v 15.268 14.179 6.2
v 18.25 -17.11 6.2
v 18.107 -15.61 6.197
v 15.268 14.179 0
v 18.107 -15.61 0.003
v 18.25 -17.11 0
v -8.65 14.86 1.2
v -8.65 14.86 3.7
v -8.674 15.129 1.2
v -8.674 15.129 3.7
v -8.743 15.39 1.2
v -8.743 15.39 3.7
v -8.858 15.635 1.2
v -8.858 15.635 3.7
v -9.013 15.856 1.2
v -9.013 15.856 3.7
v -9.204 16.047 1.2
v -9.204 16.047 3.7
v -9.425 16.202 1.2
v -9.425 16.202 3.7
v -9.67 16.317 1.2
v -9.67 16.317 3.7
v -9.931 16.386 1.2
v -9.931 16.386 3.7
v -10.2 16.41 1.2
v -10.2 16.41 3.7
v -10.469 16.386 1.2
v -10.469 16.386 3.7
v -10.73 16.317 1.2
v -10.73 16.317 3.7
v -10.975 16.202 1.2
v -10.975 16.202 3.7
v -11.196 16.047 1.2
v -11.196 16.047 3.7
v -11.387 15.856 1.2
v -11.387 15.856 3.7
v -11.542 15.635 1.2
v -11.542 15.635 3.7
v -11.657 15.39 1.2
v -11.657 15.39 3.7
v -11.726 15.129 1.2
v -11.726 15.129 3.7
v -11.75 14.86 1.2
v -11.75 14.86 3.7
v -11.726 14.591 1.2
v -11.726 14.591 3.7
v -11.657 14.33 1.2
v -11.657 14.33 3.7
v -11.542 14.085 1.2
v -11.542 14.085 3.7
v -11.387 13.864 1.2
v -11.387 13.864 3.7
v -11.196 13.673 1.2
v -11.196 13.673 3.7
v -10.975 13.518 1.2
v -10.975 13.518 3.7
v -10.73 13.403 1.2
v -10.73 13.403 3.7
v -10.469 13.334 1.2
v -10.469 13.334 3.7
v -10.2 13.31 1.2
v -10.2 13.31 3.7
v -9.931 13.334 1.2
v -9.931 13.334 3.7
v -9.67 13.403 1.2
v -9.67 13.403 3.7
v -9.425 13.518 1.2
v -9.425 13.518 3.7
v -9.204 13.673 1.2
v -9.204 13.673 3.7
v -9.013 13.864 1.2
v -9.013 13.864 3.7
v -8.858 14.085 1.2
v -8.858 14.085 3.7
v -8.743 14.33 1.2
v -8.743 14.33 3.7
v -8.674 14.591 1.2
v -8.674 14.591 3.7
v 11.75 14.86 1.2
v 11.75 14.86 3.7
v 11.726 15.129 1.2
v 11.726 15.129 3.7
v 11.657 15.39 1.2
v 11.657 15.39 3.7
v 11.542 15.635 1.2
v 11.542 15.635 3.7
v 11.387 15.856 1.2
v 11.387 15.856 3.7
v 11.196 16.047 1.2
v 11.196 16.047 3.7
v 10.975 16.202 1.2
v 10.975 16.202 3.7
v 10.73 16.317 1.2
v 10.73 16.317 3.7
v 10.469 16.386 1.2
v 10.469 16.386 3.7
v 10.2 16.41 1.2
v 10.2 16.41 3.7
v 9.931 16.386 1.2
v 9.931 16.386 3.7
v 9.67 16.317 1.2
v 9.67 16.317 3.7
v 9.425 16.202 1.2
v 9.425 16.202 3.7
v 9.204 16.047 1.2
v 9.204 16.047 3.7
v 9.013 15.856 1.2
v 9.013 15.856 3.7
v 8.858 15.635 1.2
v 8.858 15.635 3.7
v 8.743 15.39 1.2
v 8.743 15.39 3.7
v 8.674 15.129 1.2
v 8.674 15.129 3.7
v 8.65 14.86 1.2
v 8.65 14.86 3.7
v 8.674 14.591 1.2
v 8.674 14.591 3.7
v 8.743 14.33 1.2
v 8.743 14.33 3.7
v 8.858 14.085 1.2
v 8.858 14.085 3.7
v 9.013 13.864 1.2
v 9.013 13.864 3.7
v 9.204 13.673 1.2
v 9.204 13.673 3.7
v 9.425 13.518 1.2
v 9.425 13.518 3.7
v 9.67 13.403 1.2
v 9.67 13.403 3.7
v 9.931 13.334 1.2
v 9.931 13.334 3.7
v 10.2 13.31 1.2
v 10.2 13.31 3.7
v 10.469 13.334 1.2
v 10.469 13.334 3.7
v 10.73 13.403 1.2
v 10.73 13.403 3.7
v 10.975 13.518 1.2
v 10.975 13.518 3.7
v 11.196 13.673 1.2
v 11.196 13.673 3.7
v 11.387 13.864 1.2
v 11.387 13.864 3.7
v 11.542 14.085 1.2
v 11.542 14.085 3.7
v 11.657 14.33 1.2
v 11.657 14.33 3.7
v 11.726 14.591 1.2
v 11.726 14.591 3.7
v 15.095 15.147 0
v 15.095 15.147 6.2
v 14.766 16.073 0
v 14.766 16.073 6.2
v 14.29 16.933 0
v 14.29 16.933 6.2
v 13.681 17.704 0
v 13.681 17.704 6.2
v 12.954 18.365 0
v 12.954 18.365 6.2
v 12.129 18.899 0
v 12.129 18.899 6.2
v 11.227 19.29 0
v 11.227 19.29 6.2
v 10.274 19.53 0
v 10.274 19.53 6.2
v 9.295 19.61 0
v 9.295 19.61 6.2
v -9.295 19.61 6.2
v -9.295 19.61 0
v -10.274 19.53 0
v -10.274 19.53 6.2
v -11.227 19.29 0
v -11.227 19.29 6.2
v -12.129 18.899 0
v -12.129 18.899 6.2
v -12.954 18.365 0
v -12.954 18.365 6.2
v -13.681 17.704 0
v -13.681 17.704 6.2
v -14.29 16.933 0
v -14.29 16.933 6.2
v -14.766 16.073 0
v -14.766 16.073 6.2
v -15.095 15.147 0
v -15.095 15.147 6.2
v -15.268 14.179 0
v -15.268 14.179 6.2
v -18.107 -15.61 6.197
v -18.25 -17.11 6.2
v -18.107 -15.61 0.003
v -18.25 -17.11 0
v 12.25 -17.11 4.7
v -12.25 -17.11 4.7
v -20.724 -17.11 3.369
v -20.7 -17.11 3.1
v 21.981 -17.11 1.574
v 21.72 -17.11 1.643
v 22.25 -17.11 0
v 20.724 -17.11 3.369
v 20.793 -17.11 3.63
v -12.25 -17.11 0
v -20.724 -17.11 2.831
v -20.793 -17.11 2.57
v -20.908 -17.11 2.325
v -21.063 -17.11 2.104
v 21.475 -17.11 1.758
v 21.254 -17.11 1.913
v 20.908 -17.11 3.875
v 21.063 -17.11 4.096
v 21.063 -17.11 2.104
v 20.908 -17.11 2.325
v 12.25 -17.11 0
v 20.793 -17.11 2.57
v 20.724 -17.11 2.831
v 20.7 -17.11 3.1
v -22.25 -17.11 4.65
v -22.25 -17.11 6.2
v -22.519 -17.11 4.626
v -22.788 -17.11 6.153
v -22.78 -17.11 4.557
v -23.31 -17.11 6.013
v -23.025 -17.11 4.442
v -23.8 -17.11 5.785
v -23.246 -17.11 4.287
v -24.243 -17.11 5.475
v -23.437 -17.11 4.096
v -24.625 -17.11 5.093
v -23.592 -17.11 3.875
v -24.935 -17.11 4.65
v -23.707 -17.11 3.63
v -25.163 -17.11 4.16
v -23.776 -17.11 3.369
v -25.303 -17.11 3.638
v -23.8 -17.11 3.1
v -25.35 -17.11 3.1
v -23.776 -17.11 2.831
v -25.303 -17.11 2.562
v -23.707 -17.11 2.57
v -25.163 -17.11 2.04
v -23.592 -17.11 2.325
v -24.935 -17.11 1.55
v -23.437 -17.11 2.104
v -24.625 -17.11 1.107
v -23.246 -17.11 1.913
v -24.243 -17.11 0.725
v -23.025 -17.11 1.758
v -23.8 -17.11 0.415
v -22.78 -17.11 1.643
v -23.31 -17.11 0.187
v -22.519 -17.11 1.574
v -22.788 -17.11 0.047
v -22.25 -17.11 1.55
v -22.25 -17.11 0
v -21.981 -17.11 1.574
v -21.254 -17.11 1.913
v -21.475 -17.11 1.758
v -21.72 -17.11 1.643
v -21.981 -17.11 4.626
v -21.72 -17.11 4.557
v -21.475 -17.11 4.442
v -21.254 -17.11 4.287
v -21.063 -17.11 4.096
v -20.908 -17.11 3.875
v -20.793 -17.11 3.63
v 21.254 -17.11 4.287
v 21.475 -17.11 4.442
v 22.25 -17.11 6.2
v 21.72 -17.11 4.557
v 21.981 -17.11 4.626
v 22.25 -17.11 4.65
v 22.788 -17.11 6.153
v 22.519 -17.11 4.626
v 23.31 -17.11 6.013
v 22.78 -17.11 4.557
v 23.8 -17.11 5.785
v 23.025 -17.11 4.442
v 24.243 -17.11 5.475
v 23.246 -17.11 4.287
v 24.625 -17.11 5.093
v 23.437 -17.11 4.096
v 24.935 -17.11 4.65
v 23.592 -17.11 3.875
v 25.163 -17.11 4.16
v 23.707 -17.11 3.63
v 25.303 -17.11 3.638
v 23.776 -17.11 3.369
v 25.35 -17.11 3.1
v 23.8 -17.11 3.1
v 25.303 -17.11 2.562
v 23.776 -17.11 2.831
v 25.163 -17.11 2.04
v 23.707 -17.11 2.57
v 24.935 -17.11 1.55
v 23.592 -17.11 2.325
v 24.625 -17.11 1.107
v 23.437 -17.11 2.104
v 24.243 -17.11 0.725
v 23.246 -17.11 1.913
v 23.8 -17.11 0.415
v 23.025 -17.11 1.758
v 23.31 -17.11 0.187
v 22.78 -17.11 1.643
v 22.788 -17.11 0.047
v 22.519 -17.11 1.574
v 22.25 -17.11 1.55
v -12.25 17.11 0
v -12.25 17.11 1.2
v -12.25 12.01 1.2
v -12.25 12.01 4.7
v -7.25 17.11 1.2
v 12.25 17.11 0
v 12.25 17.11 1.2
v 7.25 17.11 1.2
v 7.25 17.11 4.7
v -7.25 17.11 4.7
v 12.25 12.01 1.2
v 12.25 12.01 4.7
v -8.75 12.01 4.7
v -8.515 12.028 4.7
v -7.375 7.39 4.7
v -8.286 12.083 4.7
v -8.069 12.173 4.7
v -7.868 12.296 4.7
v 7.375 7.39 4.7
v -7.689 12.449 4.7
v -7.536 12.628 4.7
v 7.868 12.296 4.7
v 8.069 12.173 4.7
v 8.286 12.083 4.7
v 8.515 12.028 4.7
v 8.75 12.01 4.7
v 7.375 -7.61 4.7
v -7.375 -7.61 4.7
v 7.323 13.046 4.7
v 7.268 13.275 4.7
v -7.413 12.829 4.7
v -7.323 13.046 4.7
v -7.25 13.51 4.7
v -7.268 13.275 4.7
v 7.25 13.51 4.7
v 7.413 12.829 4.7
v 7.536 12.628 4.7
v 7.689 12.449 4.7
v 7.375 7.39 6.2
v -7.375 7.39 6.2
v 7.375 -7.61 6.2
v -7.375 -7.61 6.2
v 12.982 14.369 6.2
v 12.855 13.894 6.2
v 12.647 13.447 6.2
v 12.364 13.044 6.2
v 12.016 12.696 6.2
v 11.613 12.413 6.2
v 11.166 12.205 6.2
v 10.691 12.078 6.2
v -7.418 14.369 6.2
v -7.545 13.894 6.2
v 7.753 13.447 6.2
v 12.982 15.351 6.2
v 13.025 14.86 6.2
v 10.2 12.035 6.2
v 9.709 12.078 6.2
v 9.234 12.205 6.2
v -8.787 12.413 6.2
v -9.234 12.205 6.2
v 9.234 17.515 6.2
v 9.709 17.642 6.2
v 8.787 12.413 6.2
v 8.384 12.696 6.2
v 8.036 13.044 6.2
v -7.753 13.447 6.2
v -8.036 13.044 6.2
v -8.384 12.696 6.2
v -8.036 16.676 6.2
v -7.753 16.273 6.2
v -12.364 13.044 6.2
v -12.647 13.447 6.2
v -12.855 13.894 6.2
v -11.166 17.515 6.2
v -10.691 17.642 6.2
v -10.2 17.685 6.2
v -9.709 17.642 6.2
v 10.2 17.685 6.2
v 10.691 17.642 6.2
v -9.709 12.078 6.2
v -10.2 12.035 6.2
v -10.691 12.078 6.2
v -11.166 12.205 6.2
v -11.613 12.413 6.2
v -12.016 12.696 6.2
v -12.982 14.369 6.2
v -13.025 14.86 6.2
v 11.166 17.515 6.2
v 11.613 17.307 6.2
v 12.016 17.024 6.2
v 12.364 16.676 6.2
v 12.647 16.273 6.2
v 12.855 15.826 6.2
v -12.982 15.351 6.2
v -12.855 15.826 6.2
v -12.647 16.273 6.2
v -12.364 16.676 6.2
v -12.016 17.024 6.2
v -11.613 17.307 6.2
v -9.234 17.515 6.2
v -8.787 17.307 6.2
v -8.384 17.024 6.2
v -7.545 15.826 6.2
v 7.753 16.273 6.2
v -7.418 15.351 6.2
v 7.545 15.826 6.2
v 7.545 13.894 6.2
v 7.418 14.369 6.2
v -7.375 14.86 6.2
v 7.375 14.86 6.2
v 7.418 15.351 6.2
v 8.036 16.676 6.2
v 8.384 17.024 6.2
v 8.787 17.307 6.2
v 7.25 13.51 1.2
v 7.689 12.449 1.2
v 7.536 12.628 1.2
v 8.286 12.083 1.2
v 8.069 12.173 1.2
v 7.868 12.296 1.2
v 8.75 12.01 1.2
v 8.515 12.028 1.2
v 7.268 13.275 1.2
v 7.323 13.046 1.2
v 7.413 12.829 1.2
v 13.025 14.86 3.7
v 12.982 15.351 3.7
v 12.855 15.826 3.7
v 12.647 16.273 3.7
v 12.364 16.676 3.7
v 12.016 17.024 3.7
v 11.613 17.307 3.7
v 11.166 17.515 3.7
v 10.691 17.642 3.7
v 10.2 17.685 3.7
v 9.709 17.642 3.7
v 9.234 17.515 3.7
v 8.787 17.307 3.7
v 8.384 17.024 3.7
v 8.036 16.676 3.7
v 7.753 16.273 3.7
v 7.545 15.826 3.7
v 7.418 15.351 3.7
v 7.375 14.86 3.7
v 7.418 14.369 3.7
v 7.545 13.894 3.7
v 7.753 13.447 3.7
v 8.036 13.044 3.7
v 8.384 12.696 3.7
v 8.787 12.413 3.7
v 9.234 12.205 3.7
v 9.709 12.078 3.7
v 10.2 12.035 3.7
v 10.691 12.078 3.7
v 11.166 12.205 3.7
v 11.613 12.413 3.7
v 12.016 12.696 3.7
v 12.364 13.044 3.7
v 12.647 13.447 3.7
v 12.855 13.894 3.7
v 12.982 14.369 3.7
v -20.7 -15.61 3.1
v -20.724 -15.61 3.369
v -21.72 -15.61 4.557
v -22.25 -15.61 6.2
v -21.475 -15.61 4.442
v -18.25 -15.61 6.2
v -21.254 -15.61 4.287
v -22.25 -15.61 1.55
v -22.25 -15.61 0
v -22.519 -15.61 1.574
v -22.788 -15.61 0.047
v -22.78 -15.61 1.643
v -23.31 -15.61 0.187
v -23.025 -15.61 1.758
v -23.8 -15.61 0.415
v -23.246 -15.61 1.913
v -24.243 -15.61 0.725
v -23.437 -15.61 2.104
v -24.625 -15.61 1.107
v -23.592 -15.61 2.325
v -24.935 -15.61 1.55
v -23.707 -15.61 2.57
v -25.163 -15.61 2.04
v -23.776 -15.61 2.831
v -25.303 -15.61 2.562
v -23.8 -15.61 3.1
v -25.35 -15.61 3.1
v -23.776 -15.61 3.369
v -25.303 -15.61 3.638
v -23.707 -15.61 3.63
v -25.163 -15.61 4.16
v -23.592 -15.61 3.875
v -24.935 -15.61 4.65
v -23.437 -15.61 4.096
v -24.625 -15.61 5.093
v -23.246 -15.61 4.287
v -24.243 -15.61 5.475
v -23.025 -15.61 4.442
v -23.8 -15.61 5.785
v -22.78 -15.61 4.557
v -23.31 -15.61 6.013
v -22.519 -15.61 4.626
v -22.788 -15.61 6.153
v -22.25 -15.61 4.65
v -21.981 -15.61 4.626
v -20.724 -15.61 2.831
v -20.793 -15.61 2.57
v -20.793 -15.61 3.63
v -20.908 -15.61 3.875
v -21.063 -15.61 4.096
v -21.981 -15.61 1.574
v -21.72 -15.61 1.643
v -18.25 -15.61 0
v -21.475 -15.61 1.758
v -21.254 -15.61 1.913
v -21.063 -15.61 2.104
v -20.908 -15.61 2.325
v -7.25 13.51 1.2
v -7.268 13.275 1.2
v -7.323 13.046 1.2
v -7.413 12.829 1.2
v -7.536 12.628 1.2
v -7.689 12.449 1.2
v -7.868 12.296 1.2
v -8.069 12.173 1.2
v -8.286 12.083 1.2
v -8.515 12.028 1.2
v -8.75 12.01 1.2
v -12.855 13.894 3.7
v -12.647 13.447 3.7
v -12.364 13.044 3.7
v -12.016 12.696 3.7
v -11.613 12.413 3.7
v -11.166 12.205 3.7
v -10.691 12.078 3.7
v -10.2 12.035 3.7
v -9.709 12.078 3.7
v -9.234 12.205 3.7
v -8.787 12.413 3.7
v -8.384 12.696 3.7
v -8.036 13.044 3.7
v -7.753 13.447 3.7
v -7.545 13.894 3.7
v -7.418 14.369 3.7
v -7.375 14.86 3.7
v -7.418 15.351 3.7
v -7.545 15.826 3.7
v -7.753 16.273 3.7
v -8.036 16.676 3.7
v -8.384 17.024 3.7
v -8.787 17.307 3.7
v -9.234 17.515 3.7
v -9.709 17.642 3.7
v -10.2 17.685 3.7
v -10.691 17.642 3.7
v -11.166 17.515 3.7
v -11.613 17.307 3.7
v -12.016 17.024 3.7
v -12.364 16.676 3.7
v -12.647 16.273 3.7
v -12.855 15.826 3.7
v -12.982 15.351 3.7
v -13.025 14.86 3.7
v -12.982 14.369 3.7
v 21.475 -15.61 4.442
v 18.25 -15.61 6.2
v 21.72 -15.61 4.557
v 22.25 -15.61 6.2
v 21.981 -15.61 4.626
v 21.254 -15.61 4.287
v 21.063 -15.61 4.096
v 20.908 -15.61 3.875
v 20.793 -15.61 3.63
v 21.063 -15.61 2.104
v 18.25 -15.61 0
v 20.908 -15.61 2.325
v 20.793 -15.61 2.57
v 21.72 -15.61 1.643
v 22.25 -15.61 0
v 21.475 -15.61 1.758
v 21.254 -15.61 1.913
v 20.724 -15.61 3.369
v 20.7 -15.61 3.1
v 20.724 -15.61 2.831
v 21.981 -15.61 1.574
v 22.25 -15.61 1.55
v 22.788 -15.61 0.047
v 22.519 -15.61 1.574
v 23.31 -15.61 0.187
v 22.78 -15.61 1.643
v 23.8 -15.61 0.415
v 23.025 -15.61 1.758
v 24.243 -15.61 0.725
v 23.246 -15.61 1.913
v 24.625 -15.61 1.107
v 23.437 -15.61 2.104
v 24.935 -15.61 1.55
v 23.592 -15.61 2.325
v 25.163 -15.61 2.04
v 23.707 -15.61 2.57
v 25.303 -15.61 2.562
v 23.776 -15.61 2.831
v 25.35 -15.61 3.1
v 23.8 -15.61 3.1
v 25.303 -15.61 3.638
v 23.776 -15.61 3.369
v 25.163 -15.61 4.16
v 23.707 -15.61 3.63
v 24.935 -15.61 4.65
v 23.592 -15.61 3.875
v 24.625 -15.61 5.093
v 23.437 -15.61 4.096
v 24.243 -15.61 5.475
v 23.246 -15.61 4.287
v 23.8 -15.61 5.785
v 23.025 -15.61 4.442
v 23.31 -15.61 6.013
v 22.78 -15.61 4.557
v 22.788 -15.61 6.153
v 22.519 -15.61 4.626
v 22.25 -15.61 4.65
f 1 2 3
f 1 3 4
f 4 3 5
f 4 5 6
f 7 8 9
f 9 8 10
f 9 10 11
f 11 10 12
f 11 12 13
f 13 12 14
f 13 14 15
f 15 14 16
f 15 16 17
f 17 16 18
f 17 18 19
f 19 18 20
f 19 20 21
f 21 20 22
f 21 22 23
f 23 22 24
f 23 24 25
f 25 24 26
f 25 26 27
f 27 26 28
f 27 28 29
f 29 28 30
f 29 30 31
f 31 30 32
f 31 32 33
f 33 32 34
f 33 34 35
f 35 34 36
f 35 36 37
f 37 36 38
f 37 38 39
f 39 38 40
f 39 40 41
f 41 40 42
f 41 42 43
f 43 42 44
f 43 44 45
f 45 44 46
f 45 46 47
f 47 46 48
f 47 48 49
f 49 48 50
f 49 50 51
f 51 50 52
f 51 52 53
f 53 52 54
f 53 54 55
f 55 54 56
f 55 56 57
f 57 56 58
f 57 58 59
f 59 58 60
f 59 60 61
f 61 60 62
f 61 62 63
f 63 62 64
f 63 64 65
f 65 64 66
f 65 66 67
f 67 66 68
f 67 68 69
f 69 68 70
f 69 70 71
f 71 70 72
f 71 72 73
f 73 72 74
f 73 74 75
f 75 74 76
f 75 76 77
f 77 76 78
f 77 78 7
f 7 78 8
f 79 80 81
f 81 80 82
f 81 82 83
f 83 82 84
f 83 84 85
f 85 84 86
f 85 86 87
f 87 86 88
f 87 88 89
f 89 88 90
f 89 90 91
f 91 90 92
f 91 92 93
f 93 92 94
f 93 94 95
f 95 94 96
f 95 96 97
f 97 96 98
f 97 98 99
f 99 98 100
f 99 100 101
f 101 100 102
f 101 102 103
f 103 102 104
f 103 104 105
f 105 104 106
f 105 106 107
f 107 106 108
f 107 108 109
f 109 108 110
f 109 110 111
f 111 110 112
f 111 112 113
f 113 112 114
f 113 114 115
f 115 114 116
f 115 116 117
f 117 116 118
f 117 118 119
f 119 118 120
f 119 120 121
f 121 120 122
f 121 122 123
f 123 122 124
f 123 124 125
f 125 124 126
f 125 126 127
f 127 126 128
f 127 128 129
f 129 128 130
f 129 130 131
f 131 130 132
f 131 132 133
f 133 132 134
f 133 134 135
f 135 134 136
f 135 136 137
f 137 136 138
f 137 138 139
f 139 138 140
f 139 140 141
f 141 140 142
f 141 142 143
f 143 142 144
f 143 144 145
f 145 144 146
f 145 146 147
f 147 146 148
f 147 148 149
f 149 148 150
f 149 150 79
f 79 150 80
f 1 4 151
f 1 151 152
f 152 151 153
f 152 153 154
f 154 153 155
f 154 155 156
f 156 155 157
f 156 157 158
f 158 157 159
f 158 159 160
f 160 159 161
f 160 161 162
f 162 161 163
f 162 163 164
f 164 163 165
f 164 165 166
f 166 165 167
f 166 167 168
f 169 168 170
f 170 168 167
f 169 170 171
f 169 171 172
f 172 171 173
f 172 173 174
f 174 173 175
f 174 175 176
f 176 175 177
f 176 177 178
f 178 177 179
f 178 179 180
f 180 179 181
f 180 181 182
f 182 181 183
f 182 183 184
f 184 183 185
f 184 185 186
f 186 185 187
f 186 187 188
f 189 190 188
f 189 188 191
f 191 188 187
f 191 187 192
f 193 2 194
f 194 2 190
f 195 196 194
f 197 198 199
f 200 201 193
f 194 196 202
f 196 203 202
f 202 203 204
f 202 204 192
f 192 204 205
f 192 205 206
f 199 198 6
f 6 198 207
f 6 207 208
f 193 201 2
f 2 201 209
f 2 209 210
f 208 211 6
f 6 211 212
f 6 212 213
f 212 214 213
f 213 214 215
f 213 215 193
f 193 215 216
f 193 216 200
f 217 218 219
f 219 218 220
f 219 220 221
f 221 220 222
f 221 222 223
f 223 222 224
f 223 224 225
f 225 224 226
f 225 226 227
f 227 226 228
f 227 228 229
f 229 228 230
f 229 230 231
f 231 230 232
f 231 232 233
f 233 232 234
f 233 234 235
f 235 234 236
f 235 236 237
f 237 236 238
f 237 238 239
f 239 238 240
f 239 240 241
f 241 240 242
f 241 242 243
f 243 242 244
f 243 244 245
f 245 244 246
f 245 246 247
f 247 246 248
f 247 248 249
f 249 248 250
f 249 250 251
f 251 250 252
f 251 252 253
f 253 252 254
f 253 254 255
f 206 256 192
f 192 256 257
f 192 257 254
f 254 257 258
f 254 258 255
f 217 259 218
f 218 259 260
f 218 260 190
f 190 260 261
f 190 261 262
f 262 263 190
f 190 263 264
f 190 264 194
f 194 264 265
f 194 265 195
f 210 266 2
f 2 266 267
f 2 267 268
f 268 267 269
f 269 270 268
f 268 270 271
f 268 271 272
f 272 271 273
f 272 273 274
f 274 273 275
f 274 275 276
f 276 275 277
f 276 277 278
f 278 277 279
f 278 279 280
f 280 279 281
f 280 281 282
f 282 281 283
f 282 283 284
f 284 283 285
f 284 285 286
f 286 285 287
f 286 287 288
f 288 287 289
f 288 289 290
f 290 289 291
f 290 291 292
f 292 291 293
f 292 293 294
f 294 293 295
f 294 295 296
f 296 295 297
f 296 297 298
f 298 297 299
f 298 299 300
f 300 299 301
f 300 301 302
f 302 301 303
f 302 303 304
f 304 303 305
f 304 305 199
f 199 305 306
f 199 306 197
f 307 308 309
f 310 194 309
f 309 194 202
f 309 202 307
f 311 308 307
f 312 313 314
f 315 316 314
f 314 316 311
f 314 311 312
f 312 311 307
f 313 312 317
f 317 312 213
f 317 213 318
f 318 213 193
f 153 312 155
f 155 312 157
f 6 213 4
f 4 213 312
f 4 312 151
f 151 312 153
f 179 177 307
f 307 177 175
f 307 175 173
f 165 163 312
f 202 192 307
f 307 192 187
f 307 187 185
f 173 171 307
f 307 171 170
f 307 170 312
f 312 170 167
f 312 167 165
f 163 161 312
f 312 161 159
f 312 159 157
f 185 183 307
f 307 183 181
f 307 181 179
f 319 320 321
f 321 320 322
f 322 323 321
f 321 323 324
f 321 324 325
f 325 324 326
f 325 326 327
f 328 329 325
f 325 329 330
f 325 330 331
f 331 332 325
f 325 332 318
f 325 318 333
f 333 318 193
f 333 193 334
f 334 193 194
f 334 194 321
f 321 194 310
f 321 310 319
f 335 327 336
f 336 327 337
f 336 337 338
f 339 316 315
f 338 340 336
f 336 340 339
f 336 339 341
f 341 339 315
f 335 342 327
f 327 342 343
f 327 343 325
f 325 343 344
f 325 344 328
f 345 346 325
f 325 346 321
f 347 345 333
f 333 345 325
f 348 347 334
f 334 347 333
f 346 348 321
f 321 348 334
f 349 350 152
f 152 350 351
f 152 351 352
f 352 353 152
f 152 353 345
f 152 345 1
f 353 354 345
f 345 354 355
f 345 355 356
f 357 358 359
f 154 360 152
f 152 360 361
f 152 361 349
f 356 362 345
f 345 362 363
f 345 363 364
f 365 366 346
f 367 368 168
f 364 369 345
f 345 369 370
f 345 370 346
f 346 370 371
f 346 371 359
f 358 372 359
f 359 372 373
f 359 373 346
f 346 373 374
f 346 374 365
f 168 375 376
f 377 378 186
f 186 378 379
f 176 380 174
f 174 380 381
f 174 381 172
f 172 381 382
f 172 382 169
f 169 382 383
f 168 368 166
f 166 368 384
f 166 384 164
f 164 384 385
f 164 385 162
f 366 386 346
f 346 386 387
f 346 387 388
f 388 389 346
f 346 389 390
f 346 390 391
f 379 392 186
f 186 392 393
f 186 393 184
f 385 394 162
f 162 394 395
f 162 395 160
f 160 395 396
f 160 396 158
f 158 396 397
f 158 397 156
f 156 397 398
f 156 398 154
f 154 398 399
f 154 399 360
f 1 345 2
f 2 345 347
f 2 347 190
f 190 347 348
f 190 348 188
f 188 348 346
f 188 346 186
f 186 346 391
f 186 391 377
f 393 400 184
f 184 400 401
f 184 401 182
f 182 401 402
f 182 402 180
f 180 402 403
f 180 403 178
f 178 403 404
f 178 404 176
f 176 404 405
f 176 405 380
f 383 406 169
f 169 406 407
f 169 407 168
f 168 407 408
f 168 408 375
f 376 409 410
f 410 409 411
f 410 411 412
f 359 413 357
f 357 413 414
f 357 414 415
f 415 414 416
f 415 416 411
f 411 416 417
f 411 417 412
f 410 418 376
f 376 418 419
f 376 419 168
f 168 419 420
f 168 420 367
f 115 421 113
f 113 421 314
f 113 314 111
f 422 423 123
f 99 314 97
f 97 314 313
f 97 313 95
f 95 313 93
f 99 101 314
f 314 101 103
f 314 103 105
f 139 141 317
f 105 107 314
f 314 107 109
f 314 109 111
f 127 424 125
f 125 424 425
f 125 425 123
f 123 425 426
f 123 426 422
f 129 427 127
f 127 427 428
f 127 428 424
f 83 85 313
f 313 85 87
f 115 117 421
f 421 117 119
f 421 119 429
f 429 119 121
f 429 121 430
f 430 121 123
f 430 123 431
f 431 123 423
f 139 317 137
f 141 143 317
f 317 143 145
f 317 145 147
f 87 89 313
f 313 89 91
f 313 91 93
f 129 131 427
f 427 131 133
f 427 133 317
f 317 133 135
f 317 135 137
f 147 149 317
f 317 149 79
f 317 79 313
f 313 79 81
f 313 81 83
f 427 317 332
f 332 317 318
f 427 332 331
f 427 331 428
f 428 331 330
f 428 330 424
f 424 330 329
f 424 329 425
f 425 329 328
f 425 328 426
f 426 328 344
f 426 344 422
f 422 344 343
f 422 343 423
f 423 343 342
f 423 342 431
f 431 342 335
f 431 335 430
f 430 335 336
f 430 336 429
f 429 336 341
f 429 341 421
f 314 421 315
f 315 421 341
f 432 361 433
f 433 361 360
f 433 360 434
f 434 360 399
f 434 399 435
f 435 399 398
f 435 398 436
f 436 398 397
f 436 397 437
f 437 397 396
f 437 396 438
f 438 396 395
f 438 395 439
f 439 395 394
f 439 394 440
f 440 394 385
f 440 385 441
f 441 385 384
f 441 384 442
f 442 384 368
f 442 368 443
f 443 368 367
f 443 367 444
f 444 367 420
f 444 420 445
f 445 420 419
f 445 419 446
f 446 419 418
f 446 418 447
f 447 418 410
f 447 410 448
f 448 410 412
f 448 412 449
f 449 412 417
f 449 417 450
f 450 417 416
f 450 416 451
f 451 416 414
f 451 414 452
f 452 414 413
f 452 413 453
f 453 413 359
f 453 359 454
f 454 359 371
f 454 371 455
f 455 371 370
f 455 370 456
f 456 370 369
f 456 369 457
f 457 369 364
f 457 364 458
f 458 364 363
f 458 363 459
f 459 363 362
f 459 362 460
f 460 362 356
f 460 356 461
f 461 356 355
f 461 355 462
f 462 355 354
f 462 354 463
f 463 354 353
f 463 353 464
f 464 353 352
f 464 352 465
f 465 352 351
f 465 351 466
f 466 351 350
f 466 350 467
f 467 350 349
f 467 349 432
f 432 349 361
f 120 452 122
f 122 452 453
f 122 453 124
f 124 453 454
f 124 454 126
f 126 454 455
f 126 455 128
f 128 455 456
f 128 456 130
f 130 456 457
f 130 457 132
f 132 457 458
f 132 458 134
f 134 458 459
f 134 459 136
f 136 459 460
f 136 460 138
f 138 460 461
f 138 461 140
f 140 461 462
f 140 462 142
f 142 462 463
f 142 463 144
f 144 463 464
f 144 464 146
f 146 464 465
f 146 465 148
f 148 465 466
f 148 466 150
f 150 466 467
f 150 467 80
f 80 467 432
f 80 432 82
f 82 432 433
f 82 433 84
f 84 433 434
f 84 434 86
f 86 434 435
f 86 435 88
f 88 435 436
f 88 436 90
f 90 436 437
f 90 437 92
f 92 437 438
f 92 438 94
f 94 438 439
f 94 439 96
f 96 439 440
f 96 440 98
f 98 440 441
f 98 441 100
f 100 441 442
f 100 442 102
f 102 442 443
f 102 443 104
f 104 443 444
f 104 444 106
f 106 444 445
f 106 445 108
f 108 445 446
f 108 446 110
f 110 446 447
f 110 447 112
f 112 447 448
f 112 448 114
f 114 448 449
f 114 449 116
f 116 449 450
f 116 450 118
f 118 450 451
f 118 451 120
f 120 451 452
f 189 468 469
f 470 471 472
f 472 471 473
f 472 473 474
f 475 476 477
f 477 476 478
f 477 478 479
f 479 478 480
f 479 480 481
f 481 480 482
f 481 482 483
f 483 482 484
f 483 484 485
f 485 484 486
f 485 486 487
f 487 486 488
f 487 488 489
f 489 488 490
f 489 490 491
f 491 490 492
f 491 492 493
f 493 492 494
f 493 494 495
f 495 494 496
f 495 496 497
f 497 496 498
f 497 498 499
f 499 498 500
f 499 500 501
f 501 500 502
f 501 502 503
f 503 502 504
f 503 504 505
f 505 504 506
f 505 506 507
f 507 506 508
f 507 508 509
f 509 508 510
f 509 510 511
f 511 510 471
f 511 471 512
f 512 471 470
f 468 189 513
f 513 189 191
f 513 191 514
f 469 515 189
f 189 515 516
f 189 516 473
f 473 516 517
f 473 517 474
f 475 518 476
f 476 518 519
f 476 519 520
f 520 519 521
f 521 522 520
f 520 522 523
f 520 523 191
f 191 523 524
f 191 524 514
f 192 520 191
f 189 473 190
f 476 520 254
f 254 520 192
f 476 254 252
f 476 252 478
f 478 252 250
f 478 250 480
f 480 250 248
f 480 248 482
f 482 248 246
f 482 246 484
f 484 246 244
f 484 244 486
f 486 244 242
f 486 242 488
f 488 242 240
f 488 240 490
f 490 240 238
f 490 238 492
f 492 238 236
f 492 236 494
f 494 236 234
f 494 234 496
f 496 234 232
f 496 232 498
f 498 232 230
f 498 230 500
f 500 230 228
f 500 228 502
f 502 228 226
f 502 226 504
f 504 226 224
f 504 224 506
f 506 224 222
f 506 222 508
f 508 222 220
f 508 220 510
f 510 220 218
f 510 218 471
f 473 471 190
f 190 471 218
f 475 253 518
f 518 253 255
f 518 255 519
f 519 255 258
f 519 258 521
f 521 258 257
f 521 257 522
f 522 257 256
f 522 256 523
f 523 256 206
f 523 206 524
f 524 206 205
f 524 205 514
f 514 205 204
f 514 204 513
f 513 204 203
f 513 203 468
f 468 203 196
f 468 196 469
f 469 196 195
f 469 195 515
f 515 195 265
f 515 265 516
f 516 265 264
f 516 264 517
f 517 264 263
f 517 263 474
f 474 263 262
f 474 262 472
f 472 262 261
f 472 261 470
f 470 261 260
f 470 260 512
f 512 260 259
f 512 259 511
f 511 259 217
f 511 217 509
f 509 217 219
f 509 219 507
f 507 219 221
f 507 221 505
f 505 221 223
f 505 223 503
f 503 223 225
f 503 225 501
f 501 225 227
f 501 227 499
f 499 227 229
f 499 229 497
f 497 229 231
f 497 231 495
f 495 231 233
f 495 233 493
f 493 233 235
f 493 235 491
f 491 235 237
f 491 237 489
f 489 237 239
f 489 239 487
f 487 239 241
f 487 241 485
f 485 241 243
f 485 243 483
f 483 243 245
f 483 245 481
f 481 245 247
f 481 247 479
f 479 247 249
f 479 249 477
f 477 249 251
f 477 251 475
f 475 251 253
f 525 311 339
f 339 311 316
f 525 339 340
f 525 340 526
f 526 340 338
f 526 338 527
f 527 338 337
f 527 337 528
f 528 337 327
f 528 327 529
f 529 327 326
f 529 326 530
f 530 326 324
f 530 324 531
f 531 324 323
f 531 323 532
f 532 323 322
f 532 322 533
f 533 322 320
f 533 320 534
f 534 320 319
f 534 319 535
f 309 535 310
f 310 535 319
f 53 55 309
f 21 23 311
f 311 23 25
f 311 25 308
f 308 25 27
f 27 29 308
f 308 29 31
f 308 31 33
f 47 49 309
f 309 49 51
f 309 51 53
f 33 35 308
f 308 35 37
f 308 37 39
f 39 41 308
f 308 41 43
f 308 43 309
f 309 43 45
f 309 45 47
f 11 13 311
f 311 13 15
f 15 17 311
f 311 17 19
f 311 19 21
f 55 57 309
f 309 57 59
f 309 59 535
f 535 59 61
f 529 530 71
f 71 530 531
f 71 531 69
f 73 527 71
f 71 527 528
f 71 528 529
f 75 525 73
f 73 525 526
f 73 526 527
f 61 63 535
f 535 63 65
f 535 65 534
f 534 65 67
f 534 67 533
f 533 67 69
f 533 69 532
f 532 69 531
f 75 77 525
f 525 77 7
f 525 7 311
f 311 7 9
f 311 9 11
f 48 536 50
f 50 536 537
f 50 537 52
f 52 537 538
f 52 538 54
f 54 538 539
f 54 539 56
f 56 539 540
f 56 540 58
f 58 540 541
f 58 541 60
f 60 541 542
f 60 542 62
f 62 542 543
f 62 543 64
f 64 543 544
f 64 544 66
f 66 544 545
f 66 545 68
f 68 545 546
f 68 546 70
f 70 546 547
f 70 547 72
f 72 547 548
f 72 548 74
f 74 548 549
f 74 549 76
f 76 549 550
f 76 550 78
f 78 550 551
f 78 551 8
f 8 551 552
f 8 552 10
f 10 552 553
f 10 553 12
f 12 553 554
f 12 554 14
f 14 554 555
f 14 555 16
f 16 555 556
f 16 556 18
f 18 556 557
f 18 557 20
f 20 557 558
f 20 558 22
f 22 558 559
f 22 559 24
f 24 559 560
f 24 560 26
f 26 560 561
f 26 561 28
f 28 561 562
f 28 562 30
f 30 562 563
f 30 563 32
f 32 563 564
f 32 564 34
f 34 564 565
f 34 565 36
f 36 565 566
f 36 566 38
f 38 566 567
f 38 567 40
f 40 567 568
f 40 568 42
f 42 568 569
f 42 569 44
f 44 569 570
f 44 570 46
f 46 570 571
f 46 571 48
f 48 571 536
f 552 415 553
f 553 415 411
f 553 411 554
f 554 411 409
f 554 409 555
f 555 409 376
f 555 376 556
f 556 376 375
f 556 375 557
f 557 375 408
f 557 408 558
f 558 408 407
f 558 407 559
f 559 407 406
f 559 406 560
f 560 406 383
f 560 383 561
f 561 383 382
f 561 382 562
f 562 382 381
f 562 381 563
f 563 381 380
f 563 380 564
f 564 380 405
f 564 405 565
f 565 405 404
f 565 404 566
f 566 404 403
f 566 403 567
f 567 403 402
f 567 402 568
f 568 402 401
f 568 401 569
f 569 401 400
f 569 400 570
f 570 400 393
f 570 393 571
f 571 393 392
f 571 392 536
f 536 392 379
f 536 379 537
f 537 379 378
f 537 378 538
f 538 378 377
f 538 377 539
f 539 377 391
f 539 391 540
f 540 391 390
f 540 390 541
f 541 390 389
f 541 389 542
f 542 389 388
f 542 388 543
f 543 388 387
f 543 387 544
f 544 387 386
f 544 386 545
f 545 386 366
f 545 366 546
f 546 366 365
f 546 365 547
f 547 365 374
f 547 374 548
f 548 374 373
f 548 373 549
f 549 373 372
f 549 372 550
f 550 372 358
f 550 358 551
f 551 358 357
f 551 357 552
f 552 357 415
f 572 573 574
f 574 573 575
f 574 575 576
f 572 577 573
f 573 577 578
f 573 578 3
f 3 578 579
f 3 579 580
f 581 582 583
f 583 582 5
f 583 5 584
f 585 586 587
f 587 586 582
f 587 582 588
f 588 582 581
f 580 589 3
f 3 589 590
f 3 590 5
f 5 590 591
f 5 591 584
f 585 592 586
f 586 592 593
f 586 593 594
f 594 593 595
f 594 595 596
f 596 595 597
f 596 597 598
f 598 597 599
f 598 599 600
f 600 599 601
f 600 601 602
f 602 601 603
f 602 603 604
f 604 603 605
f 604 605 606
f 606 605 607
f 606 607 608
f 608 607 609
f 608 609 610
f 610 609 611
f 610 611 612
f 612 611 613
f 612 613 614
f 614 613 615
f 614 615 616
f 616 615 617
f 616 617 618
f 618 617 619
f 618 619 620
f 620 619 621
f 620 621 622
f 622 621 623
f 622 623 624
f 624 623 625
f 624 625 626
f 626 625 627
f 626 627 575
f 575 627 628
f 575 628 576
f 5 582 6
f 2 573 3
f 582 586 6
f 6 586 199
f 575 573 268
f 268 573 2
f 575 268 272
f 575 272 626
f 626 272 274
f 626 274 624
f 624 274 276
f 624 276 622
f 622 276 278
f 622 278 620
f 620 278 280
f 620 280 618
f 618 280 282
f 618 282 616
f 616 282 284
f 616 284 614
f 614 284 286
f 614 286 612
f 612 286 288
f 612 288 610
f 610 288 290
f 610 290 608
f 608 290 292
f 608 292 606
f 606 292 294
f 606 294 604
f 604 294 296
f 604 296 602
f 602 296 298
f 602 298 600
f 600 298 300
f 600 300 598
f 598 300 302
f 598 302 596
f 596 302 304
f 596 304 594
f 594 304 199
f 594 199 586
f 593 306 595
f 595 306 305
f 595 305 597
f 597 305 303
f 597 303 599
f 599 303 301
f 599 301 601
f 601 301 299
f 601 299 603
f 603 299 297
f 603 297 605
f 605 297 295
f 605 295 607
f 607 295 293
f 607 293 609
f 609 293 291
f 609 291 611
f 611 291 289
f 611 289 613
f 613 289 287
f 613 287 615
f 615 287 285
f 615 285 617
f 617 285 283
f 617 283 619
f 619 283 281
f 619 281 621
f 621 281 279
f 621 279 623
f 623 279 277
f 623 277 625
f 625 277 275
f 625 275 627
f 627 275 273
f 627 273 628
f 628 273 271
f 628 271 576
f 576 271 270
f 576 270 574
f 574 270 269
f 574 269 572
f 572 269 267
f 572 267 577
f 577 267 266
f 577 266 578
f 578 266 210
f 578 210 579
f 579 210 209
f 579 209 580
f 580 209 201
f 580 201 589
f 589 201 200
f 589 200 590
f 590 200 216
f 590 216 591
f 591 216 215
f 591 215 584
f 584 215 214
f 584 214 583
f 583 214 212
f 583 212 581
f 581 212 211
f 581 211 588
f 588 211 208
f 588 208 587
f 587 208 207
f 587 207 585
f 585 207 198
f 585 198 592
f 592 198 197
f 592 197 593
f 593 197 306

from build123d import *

# Parameters (mm, degrees)
BOSS_EXTRUDE1_DEPTH = 4.7
SKETCH2_W           = 24.5
SKETCH2_H           = 34.22
SKETCH2_W_2         = 14.75
SKETCH2_H_2         = 15
BOSS_EXTRUDE2_DEPTH = 1.5
SKETCH4_R           = 1.55
BOSS_EXTRUDE3_DEPTH = 3.5
SKETCH5_R           = 1.55
CUT_EXTRUDE1_DEPTH  = 28.197510916
SKETCH6_R           = 2.825
CUT_EXTRUDE2_DEPTH  = 2.5
SKETCH7_R           = 1.55
BOSS_EXTRUDE4_DEPTH = 1.5


with BuildPart() as part:
    # Sketch1 → Boss-Extrude1 (new body)
    with BuildSketch(Plane.XY):
        with BuildLine():
            Line((18.25, -17.11), (15.267630639, 14.179315124))
            ThreePointArc((15.267630639, 14.179315124), (13.331043423, 18.049363172), (9.294701685, 19.61))
            Line((9.294701685, 19.61), (-9.294701685, 19.61))
            ThreePointArc((-9.294701685, 19.61), (-13.331043423, 18.049363172), (-15.267630639, 14.179315124))
            Line((-15.267630639, 14.179315124), (-18.25, -17.11))
            Line((-18.25, -17.11), (-12.25, -17.11))
            Line((-12.25, -17.11), (-12.25, 17.11))
            Line((-12.25, 17.11), (12.25, 17.11))
            Line((12.25, 17.11), (12.25, -17.11))
            Line((12.25, -17.11), (18.25, -17.11))
        make_face()
    extrude(amount=BOSS_EXTRUDE1_DEPTH)

    # Sketch2 → Boss-Extrude2 (add)
    # profile 1 of 2: a face of its own
    with BuildSketch(Plane.XY.offset(4.7)):
        Rectangle(SKETCH2_W, SKETCH2_H)
        with Locations((0, -0.11)):
            Rectangle(SKETCH2_W_2, SKETCH2_H_2, mode=Mode.SUBTRACT)
    # profile 2 of 2: a face of its own
    with BuildSketch(Plane.XY.offset(4.7)):
        with BuildLine():
            Line((12.25, 17.11), (12.25, -17.11))
            Line((12.25, -17.11), (18.25, -17.11))
            Line((18.25, -17.11), (15.267630639, 14.179315124))
            ThreePointArc((15.267630639, 14.179315124), (13.331043423, 18.049363172), (9.294701685, 19.61))
            Line((9.294701685, 19.61), (-9.294701685, 19.61))
            ThreePointArc((-9.294701685, 19.61), (-13.331043423, 18.049363172), (-15.267630639, 14.179315124))
            Line((-15.267630639, 14.179315124), (-18.25, -17.11))
            Line((-18.25, -17.11), (-12.25, -17.11))
            Line((-12.25, -17.11), (-12.25, 17.11))
            Line((-12.25, 17.11), (12.25, 17.11))
        make_face()
    extrude(amount=BOSS_EXTRUDE2_DEPTH)

    # Sketch4 → Boss-Extrude3 (add)
    with BuildSketch(Plane(origin=(0, 0, 4.7), x_dir=(-1, 0, 0), z_dir=(0, 0, -1))):
        with BuildLine():
            Line((-12.25, 17.11), (-7.25, 17.11))
            Line((-7.25, 17.11), (-7.25, 13.51))
            ThreePointArc((-7.25, 13.51), (-7.689339828, 12.449339828), (-8.75, 12.01))
            Line((-8.75, 12.01), (-12.25, 12.01))
            Line((-12.25, 12.01), (-12.25, 17.11))
        make_face()
        with Locations((-10.2, 14.86)):
            Circle(SKETCH4_R, mode=Mode.SUBTRACT)
    boss_extrude3 = extrude(amount=BOSS_EXTRUDE3_DEPTH)

    # Sketch5 → Cut-Extrude1 (cut, through all)
    with BuildSketch(Plane(origin=(0, 0, 4.7), x_dir=(-1, 0, 0), z_dir=(0, 0, -1))):
        with Locations((-10.2, 14.86)):
            Circle(SKETCH5_R)
    extrude(amount=-CUT_EXTRUDE1_DEPTH, mode=Mode.SUBTRACT)

    # Sketch6 → Cut-Extrude2 (cut)
    with BuildSketch(Plane.XY.offset(6.2)):
        with Locations((10.2, 14.86)):
            Circle(SKETCH6_R)
    cut_extrude2 = extrude(amount=-CUT_EXTRUDE2_DEPTH, mode=Mode.SUBTRACT)

    # Sketch7 → Boss-Extrude4 (add)
    with BuildSketch(Plane.XZ.offset(17.11)):
        with BuildLine():
            Line((-22.25, 6.2), (-18.25, 6.2))
            ThreePointArc((-18.25, 6.2), (-15.15, 3.1), (-18.25, 0))
            Line((-18.25, 0), (-22.25, 0))
            ThreePointArc((-22.25, 0), (-25.35, 3.1), (-22.25, 6.2))
        make_face()
        with Locations(Location((-22.25, 3.1, 0), (0, 0, 270))):
            Circle(SKETCH7_R, mode=Mode.SUBTRACT)
    boss_extrude4 = extrude(amount=-BOSS_EXTRUDE4_DEPTH)

    # Mirror1: Boss-Extrude3, Cut-Extrude2, Boss-Extrude4 across plane
    add(boss_extrude3.mirror(Plane(origin=(0, 0, 0), x_dir=(0, 0, 1), z_dir=(1, 0, 0))))
    add(cut_extrude2.mirror(Plane(origin=(0, 0, 0), x_dir=(0, 0, 1), z_dir=(1, 0, 0))), mode=Mode.SUBTRACT)
    add(boss_extrude4.mirror(Plane(origin=(0, 0, 0), x_dir=(0, 0, 1), z_dir=(1, 0, 0))))


solid = part.part
